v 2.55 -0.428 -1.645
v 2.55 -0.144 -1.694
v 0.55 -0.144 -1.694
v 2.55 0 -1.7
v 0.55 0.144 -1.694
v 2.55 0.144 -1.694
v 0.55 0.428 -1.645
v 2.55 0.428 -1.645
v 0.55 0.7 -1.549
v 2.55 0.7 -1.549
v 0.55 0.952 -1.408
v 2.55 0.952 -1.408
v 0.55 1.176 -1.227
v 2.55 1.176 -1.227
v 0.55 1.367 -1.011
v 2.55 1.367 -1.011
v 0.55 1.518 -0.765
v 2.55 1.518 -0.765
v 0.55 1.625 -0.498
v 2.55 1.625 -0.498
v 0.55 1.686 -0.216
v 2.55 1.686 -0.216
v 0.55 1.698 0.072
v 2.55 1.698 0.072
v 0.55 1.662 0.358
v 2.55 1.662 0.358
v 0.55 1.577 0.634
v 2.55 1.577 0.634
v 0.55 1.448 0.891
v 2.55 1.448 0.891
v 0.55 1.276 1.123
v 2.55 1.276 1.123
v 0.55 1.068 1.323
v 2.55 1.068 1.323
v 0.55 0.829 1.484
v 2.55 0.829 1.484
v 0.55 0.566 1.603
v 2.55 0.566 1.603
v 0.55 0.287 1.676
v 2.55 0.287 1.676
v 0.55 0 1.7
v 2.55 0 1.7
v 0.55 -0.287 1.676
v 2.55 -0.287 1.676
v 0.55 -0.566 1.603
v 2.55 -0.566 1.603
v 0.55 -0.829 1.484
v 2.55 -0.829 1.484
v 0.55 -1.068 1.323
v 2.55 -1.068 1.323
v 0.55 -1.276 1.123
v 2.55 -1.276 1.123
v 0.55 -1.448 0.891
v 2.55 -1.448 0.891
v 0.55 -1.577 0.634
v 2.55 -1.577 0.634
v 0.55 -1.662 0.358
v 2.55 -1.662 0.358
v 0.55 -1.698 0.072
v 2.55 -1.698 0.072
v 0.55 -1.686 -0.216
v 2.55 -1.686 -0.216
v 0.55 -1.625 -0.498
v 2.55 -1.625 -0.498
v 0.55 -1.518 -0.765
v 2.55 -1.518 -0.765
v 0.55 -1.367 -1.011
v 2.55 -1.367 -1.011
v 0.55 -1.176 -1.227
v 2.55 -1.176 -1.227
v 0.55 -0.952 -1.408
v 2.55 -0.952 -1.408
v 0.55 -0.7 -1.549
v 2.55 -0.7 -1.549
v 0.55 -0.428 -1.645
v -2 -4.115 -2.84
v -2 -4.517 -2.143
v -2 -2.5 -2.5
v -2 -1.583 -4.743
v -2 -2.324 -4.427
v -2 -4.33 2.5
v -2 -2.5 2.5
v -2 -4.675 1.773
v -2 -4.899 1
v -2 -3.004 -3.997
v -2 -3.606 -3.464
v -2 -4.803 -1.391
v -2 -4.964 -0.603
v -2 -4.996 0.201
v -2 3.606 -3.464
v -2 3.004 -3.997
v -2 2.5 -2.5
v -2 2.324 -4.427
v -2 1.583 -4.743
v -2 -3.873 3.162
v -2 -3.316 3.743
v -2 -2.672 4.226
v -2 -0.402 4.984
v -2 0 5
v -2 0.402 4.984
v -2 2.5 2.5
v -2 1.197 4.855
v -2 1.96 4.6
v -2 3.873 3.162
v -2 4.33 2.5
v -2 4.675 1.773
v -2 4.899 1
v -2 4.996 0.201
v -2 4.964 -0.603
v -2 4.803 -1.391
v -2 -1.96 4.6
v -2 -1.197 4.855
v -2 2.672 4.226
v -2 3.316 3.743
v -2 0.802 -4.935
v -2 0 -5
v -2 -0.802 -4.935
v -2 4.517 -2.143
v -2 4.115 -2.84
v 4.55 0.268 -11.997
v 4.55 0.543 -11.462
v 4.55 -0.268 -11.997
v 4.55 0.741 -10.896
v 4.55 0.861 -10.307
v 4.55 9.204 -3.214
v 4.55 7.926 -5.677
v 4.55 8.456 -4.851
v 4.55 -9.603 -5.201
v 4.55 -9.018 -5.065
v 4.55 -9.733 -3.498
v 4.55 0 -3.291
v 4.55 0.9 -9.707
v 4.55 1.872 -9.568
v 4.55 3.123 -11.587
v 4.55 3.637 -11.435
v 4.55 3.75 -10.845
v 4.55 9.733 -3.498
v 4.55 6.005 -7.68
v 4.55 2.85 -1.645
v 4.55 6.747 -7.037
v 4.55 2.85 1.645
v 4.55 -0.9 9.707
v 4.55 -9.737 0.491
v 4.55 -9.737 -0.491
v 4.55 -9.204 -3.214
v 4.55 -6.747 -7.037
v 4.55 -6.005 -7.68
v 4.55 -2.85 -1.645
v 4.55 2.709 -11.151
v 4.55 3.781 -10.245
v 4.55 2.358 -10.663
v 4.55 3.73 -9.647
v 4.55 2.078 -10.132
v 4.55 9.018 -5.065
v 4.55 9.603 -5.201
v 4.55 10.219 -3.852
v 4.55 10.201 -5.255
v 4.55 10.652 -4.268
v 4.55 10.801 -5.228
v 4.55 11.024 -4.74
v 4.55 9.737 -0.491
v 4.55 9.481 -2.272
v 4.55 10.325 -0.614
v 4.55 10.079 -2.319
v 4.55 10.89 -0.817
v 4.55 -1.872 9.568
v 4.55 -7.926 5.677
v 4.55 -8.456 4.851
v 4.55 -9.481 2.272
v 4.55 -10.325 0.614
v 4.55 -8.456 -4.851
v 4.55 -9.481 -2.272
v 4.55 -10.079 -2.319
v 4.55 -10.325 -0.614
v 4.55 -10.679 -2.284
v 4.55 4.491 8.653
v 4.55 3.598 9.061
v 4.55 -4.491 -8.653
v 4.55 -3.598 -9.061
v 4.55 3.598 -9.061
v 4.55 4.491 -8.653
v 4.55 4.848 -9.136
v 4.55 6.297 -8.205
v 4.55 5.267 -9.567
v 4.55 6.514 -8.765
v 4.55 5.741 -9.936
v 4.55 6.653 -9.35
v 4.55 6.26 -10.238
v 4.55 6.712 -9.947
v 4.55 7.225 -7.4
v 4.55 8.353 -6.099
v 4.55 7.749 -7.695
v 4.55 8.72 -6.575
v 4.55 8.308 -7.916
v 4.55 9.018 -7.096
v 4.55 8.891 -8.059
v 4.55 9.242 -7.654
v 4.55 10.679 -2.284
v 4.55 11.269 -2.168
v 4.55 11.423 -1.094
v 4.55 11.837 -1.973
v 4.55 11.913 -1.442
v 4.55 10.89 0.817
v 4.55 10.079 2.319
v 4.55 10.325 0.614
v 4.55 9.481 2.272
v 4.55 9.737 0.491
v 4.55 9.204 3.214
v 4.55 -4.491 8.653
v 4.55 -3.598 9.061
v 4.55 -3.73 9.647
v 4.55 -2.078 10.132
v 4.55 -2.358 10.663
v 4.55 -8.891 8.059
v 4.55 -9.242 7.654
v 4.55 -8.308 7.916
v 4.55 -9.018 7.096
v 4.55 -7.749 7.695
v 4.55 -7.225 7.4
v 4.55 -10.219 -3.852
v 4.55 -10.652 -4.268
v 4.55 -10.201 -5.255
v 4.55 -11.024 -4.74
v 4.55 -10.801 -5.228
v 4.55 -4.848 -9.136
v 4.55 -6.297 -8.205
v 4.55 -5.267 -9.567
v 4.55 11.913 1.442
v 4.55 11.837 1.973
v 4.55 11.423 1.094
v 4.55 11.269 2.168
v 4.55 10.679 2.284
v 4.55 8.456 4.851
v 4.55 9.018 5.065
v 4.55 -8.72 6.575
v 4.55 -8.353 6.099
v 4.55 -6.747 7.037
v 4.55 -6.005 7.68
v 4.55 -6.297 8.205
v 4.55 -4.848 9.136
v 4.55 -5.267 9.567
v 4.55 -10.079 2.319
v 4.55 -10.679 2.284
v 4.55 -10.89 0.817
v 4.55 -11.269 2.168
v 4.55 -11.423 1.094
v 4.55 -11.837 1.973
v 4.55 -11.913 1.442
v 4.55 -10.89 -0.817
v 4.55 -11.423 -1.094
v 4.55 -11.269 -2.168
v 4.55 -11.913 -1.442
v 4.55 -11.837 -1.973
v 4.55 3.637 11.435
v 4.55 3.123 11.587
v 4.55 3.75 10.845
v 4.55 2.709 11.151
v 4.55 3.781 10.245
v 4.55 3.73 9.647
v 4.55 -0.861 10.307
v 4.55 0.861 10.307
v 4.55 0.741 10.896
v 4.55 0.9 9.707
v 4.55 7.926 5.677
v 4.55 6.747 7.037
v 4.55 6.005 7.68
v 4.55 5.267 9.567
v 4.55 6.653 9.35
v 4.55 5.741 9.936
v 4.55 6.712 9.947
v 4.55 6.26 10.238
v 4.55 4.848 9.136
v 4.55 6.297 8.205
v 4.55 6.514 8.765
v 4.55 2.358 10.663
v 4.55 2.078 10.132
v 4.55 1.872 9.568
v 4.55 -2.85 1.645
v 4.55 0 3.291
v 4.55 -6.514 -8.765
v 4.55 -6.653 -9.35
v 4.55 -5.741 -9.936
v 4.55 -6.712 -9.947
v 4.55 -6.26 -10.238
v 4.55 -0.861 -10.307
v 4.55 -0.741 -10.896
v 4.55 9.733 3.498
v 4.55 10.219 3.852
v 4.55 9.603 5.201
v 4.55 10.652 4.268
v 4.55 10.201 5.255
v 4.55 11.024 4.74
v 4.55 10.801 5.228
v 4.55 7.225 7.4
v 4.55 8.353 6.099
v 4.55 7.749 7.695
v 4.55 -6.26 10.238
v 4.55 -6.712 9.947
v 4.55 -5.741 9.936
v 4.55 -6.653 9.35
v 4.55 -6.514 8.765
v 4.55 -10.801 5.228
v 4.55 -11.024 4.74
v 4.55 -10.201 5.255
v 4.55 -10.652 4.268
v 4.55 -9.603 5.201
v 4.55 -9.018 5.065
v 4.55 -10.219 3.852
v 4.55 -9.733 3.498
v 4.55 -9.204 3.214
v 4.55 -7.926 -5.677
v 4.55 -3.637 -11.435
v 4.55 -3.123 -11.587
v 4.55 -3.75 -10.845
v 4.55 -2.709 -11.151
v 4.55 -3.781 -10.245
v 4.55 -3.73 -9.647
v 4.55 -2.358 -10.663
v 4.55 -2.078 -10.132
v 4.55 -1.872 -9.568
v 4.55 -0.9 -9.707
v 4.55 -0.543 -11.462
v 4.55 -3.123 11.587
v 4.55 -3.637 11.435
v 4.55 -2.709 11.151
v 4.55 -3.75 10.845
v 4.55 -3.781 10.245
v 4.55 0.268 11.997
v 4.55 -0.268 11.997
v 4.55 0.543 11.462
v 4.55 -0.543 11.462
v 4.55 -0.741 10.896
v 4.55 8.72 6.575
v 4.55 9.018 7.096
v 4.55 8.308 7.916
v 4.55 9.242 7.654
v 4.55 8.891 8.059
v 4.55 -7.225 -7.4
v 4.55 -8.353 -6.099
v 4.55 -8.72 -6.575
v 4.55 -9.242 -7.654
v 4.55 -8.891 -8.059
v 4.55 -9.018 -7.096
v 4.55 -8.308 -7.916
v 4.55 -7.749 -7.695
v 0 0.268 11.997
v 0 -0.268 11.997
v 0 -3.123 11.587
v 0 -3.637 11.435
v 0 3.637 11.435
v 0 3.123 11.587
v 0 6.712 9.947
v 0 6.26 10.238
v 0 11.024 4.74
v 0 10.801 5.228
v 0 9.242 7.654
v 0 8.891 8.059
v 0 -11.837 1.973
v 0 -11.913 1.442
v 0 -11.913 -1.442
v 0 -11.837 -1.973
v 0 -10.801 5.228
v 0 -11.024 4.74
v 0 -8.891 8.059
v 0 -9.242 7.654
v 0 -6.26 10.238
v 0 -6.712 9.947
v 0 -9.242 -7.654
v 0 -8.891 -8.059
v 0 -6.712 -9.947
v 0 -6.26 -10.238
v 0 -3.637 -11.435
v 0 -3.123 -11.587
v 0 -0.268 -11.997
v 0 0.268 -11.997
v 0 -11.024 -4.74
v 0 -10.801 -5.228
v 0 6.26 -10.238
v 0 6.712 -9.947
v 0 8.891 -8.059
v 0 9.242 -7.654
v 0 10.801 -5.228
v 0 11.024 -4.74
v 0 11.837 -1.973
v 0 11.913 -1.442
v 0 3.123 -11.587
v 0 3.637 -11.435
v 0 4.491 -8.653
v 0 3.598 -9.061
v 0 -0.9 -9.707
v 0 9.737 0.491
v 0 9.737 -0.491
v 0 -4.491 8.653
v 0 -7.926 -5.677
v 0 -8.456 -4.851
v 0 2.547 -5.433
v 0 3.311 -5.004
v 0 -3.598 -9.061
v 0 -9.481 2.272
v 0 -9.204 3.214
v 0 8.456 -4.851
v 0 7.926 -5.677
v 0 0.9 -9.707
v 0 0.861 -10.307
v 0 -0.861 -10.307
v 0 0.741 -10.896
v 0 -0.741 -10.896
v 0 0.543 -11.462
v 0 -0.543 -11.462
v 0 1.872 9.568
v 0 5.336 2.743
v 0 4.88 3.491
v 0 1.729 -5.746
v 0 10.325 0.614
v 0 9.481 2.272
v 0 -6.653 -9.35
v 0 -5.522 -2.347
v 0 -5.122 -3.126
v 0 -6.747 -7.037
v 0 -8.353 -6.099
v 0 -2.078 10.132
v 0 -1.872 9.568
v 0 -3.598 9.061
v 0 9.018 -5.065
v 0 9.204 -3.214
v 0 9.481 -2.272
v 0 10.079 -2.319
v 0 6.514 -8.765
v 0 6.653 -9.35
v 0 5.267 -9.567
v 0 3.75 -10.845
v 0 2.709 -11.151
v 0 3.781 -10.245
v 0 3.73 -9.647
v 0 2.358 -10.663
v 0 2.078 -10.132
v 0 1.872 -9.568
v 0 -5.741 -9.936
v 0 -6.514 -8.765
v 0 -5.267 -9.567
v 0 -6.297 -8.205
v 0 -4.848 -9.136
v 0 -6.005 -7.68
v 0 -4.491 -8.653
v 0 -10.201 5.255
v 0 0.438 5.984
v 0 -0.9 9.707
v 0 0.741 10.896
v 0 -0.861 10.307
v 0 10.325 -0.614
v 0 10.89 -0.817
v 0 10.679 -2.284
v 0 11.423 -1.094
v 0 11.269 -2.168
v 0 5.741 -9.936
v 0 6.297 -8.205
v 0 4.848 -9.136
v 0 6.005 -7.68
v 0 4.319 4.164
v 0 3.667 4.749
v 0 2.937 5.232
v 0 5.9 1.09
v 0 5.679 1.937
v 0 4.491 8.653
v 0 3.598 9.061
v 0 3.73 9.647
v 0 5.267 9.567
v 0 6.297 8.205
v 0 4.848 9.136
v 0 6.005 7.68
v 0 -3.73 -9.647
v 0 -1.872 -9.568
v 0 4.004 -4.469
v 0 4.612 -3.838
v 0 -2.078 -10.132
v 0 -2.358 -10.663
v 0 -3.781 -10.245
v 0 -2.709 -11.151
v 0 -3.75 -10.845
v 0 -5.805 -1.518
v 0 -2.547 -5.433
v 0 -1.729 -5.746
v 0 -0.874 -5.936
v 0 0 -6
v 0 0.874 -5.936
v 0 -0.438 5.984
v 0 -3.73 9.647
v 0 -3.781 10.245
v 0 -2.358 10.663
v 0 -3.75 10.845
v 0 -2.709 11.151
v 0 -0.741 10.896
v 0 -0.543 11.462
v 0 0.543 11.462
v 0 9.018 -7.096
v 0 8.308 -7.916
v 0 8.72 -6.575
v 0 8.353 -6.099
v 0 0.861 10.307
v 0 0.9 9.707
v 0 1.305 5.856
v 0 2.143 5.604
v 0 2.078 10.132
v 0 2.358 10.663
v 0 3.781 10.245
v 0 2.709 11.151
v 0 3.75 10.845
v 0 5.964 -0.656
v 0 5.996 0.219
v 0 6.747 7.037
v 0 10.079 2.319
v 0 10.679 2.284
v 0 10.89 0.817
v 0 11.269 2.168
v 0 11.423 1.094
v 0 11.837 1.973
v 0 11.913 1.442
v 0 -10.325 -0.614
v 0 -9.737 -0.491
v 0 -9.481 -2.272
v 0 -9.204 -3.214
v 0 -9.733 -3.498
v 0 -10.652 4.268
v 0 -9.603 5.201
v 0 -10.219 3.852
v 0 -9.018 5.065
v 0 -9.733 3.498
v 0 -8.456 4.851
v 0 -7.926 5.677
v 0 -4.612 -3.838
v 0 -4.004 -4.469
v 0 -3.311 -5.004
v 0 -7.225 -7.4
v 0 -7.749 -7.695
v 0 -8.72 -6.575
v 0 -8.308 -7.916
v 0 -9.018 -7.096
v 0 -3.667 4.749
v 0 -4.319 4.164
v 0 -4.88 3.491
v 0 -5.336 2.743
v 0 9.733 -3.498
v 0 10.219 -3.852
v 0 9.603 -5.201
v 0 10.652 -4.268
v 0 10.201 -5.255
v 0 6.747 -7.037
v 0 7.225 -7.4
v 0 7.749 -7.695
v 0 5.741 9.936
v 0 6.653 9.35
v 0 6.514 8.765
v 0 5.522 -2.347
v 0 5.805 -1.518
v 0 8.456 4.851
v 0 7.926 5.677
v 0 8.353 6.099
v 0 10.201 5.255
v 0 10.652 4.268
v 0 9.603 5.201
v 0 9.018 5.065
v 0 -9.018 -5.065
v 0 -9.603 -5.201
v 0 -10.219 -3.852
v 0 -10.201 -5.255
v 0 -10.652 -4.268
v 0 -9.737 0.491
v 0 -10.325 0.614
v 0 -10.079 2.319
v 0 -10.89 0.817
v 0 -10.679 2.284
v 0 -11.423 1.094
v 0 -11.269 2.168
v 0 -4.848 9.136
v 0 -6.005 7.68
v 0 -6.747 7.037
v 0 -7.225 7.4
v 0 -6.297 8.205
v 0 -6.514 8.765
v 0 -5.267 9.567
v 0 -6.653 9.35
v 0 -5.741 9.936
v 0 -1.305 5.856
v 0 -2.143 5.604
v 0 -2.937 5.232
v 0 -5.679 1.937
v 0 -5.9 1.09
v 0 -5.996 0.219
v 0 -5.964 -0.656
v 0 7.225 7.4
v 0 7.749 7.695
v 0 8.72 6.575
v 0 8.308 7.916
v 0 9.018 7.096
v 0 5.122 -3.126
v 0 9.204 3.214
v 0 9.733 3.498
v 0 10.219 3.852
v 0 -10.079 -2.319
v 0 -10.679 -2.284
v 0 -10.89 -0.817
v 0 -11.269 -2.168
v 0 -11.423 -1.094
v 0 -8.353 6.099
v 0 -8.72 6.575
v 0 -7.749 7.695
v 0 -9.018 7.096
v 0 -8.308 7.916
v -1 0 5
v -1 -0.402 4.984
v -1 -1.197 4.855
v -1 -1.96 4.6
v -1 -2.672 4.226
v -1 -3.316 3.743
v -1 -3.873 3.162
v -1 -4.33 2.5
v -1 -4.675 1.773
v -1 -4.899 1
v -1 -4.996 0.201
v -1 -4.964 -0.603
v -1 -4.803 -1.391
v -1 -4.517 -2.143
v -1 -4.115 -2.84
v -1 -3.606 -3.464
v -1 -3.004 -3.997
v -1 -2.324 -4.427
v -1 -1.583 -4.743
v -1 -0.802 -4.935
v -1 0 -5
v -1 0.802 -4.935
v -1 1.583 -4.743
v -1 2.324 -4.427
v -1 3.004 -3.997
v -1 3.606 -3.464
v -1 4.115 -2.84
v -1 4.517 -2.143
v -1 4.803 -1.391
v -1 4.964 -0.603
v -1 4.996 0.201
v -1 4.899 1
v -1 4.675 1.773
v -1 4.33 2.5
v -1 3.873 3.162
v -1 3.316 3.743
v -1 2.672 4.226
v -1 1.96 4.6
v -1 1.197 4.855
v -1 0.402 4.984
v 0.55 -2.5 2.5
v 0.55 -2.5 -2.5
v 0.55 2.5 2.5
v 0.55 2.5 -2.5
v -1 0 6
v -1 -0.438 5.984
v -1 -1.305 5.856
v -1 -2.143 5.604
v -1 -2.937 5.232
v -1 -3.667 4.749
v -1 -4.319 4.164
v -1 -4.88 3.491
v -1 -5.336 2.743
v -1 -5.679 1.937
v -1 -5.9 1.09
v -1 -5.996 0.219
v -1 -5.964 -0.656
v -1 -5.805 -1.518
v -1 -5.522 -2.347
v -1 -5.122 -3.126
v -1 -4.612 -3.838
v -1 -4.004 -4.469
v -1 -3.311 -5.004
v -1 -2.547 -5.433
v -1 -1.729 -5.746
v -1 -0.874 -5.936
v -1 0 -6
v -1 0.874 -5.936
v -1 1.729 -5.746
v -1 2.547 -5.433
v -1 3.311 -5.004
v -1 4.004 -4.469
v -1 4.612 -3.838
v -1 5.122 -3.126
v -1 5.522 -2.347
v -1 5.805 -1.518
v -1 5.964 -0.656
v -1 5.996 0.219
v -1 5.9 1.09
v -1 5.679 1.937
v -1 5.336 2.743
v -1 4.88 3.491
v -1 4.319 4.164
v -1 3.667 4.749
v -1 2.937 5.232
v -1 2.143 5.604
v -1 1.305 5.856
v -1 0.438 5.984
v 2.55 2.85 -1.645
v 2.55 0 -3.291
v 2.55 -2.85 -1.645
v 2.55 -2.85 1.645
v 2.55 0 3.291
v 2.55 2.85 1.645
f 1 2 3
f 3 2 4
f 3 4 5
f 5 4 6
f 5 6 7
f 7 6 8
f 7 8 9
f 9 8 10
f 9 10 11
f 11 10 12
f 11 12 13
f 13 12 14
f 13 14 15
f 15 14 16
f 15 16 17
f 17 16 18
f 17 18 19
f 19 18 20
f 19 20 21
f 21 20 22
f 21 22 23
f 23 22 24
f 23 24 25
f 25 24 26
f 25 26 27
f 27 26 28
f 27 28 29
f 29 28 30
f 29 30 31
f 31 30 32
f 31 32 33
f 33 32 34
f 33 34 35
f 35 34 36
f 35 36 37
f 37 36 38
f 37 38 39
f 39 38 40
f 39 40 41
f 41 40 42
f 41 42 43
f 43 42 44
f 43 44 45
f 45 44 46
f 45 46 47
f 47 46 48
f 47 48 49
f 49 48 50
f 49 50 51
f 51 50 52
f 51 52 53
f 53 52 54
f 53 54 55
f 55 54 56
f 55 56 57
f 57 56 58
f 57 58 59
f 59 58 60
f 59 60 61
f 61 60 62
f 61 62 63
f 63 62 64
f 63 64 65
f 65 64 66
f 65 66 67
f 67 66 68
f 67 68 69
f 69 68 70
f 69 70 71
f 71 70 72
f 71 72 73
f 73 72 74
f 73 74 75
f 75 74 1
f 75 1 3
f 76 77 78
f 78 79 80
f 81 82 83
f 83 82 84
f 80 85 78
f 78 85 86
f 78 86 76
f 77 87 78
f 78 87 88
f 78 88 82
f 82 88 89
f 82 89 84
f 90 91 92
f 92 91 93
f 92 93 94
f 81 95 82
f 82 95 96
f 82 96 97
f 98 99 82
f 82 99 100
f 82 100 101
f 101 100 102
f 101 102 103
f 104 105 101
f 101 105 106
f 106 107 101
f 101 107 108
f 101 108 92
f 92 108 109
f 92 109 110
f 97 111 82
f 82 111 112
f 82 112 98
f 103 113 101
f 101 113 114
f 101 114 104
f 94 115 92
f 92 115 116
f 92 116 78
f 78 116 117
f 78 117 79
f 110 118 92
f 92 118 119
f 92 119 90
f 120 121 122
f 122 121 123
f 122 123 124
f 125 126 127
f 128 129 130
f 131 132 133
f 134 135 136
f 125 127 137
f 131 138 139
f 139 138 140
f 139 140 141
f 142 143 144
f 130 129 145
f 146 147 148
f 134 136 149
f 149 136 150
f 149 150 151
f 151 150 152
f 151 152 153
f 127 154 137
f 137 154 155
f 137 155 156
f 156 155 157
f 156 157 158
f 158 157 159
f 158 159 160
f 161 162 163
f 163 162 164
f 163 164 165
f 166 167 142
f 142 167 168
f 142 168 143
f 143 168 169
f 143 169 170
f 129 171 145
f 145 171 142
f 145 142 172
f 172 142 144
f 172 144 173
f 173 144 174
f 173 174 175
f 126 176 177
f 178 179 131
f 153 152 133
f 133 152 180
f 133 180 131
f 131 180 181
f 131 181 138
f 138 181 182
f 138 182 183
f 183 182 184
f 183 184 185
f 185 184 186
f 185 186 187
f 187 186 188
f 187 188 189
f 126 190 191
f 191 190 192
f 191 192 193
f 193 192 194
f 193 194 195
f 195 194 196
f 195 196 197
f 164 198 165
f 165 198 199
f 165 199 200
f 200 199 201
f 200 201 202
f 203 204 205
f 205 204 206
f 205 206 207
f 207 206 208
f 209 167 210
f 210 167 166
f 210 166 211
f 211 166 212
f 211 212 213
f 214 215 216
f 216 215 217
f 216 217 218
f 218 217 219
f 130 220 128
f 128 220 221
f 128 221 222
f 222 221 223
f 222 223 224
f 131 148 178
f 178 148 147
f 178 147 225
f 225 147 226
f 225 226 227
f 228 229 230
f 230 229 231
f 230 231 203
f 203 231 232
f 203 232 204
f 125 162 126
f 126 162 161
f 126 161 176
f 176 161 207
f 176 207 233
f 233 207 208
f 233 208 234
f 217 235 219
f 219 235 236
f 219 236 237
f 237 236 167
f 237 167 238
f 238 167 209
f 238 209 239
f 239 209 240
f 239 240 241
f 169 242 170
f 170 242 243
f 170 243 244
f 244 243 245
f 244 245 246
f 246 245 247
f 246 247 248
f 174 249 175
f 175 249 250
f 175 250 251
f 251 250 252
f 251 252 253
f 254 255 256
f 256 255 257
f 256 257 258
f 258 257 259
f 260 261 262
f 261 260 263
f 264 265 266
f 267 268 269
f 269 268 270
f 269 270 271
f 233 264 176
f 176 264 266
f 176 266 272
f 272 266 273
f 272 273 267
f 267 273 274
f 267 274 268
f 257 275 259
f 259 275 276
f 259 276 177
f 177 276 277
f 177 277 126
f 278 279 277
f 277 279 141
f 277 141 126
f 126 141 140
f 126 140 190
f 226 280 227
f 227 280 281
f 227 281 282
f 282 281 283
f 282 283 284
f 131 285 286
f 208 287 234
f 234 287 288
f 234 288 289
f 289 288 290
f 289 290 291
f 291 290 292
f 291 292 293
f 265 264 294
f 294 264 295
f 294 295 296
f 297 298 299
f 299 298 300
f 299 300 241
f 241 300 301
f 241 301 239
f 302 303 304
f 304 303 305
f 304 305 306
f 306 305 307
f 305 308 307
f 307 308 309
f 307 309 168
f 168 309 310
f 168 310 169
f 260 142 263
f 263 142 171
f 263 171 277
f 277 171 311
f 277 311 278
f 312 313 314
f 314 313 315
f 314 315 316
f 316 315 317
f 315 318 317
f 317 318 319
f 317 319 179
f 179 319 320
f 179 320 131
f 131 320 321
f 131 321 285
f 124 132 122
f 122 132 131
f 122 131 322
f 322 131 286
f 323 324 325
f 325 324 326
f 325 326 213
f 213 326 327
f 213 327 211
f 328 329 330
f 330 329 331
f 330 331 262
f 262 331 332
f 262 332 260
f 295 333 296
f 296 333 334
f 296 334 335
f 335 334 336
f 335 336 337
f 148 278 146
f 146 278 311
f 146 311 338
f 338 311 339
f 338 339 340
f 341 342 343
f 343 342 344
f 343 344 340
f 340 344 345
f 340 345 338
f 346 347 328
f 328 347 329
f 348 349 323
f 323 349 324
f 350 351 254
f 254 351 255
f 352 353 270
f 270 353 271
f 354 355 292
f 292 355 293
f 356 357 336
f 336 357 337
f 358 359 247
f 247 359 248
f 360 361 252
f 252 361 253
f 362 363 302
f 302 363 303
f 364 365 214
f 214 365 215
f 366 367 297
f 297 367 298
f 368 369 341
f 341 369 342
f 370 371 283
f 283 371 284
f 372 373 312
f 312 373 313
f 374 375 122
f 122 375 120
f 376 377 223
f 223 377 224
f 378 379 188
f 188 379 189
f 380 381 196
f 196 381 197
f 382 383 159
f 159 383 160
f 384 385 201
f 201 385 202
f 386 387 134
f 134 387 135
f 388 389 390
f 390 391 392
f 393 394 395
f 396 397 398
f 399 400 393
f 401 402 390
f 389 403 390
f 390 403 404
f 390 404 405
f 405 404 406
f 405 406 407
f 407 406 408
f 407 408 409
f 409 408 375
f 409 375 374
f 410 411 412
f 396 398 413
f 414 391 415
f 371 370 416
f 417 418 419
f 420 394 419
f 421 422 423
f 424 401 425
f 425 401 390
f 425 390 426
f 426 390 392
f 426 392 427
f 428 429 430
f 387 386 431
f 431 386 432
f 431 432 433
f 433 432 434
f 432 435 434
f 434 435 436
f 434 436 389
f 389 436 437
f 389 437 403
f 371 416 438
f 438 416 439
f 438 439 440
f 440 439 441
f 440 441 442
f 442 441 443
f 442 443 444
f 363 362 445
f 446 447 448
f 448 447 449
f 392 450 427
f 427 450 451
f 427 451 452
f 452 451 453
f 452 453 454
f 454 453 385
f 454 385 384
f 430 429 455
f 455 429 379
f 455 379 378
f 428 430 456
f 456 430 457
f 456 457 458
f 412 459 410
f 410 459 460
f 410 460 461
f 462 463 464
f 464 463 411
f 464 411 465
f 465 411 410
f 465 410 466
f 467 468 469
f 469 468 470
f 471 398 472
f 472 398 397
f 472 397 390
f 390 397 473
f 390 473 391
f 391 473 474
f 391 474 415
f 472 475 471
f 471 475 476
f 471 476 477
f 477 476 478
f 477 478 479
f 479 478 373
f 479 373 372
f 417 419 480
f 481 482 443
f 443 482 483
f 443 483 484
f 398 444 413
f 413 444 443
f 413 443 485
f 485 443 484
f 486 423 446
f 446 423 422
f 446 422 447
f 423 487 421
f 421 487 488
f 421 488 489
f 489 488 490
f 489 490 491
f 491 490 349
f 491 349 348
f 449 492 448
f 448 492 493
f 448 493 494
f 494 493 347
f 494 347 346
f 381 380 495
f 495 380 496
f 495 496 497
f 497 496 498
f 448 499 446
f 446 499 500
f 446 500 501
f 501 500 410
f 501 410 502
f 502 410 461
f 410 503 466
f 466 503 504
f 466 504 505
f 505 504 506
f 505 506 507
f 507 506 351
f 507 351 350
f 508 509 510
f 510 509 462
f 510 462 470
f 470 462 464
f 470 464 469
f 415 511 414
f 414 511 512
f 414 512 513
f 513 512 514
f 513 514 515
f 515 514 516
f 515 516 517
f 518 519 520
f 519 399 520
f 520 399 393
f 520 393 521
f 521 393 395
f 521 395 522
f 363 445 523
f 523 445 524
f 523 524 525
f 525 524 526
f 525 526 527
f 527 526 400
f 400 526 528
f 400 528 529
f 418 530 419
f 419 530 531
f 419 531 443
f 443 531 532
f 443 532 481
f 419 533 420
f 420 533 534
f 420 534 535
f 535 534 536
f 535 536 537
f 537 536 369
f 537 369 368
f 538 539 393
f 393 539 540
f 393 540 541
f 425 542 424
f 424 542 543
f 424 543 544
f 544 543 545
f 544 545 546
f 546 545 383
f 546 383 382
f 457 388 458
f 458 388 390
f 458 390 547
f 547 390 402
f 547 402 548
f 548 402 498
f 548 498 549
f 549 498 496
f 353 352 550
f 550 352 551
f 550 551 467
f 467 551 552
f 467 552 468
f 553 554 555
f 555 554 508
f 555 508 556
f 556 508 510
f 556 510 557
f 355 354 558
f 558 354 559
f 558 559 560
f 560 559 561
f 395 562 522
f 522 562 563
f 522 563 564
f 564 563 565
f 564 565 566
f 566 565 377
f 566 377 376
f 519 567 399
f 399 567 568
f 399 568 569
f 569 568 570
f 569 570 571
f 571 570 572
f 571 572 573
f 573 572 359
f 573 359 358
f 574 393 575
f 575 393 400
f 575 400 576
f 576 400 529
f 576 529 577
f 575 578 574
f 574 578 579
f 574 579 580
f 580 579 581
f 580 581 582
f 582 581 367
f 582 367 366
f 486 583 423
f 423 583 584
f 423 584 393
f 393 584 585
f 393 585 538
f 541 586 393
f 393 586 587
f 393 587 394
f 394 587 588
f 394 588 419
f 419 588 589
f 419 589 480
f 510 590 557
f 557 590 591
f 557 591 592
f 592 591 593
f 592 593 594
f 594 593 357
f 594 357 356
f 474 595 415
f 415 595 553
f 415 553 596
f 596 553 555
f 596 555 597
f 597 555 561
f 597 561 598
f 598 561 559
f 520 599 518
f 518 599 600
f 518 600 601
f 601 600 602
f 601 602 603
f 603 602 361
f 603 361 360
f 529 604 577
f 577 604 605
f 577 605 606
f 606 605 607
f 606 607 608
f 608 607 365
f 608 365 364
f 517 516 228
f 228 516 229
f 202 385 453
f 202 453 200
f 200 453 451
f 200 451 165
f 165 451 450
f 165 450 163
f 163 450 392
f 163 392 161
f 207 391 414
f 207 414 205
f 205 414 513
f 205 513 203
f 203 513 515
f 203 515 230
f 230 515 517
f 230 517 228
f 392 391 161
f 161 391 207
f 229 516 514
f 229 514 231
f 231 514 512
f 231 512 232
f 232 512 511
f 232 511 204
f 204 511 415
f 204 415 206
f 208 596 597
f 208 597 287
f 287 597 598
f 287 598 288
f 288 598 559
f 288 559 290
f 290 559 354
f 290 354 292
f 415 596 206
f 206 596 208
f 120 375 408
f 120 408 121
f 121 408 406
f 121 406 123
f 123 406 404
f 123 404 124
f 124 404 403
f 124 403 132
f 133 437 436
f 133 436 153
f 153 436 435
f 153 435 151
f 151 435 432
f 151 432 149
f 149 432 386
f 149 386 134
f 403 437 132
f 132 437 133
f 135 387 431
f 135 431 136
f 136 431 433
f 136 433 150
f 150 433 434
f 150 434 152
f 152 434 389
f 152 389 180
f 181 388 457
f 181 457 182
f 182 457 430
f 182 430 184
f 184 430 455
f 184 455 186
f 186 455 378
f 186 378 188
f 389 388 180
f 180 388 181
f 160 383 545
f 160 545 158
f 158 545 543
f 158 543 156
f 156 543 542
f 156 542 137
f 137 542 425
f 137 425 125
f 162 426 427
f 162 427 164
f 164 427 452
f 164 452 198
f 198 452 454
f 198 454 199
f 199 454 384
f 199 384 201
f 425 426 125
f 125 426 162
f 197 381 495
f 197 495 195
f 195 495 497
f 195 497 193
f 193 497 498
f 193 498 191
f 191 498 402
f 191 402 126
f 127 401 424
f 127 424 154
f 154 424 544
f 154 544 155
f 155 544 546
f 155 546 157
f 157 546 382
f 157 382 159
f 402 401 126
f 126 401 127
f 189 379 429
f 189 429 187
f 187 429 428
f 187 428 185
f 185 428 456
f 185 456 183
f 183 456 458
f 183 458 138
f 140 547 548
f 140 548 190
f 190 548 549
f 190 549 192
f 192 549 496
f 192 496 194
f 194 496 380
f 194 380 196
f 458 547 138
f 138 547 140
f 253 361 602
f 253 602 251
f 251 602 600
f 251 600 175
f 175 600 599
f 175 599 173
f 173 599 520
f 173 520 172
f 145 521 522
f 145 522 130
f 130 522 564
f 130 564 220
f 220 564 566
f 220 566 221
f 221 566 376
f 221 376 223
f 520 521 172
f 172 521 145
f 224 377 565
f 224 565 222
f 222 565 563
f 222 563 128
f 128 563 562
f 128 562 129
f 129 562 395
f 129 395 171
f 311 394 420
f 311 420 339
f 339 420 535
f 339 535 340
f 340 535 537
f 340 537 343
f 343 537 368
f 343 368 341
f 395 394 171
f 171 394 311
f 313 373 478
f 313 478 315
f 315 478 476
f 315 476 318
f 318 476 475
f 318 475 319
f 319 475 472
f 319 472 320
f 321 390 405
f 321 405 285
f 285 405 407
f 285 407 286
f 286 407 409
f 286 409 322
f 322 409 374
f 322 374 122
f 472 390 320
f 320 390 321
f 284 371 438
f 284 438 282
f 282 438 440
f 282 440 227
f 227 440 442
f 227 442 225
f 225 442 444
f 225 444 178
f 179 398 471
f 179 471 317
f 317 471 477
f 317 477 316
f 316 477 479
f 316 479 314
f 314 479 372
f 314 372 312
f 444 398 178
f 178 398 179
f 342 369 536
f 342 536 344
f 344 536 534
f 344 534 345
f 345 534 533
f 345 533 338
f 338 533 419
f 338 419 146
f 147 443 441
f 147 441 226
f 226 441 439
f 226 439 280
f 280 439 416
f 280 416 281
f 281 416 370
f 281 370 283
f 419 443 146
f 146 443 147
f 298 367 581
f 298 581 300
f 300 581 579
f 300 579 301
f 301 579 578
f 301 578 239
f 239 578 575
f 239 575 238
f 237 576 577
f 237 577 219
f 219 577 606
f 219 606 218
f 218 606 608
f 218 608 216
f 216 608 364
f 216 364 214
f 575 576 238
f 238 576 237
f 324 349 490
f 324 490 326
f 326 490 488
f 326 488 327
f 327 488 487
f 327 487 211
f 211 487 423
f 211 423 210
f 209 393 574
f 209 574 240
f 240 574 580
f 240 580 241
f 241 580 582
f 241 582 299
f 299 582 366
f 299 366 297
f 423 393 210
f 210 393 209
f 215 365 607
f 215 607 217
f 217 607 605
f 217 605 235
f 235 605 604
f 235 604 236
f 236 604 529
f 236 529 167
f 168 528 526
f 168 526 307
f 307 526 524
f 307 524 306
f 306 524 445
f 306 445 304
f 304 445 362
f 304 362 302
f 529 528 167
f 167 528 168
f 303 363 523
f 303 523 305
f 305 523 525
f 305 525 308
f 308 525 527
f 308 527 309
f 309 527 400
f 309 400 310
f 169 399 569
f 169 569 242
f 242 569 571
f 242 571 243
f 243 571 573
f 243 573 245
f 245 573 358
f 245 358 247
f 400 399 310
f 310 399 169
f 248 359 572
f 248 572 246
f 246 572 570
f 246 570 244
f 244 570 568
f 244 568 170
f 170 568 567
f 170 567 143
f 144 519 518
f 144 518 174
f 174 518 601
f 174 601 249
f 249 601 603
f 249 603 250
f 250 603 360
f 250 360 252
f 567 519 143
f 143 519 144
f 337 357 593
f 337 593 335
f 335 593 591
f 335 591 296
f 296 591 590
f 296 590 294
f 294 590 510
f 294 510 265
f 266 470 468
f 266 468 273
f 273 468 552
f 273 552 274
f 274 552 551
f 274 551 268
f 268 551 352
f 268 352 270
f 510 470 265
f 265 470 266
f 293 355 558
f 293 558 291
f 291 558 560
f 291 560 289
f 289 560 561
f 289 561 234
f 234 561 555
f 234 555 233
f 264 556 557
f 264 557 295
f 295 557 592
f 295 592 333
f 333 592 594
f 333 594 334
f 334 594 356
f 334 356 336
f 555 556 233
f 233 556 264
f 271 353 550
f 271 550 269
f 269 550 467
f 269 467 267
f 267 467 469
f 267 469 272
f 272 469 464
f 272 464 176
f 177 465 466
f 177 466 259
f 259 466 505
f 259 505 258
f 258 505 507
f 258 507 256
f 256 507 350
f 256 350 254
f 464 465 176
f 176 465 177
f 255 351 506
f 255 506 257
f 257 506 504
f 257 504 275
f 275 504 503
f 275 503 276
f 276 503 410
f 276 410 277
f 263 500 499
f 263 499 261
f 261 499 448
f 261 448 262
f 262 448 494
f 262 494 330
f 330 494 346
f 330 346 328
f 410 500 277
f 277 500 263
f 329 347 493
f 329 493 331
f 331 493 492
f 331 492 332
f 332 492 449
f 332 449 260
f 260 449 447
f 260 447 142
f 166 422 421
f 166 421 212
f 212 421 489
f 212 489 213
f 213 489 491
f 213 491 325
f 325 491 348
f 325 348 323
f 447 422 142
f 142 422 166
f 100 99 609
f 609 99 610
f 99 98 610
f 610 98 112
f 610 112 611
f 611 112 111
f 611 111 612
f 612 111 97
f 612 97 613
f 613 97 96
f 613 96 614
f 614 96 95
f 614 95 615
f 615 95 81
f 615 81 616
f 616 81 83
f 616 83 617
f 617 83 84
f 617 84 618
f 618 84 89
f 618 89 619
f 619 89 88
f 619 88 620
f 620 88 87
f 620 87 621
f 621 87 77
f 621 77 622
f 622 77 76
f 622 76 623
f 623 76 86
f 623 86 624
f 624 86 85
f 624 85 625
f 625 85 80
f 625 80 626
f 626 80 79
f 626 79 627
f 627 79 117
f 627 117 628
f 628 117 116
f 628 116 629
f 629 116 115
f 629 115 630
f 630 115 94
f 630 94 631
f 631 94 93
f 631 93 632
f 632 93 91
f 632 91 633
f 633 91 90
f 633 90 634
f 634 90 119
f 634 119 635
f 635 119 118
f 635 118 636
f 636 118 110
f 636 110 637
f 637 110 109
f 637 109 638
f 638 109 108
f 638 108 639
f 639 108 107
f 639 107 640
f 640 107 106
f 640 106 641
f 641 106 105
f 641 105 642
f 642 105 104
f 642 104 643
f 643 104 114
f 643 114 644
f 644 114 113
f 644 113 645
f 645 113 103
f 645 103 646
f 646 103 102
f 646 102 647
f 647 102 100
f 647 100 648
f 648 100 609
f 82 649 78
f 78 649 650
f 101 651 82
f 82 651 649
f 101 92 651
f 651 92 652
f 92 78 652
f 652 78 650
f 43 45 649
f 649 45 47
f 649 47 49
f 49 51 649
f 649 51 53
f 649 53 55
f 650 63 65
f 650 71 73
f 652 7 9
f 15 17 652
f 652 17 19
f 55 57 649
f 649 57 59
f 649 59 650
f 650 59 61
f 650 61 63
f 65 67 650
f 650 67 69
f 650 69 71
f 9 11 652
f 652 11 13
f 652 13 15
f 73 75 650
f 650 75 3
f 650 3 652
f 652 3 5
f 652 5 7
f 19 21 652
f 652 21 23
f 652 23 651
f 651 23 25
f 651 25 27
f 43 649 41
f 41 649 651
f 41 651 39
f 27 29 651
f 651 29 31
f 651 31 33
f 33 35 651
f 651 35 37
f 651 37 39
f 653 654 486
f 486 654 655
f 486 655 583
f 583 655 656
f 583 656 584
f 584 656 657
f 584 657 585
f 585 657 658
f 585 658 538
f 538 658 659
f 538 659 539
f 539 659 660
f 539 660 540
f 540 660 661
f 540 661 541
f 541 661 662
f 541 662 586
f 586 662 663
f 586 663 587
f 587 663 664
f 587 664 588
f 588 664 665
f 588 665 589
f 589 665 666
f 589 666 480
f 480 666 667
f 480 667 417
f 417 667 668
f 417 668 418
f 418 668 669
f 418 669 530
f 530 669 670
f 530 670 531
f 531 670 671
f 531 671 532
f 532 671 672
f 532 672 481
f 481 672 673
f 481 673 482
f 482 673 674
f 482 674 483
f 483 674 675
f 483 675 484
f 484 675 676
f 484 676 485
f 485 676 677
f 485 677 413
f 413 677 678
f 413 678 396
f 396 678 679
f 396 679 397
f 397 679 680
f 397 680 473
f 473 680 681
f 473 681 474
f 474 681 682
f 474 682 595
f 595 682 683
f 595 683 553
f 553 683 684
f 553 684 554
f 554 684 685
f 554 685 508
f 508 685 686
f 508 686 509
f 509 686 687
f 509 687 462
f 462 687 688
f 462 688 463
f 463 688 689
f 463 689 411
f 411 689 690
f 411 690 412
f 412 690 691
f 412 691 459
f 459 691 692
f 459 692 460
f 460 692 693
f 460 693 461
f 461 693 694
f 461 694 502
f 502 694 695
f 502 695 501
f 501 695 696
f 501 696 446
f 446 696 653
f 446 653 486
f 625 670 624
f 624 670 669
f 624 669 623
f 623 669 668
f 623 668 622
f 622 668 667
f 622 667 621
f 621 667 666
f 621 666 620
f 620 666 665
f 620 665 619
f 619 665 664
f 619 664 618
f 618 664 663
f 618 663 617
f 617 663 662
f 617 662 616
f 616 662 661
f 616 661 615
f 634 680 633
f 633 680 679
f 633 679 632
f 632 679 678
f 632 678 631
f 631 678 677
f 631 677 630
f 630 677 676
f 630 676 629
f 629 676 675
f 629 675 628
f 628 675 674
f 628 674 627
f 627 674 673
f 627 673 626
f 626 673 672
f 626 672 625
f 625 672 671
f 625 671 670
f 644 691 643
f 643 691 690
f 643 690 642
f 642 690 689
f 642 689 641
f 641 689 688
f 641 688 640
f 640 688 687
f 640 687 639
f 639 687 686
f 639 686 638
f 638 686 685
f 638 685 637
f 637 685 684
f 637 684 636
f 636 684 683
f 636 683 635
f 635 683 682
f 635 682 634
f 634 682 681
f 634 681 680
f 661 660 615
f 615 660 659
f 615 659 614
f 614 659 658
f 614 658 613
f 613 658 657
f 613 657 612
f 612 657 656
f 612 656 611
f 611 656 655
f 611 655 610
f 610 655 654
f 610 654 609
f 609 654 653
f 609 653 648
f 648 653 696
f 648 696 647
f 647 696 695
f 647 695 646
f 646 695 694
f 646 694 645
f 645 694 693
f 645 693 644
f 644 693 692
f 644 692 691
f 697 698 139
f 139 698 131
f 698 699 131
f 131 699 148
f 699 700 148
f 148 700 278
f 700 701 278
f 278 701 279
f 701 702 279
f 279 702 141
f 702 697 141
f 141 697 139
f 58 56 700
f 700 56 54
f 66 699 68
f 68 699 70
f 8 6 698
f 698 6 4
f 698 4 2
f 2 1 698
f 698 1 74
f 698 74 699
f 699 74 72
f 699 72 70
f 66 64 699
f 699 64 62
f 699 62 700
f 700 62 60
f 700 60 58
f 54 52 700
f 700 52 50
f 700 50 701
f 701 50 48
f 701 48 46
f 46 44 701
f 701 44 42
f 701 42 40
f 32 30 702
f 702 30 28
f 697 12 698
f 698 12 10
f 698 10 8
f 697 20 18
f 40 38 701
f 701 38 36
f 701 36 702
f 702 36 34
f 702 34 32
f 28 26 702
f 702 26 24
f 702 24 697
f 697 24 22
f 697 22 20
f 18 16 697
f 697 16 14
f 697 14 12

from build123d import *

# Parameters (mm, degrees)
BASPROSKE_W         = 4.55
BASPROSKE_H         = 12
TOOTHCUT_DEPTH      = 18.569931702
TEETHCUTS_COUNT     = 22
TEETHCUTS_ANGLE     = 343.636363636
BORSKE_R            = 1.7
BORE_DEPTH          = 50.0000508
SKETCH1_R           = 5
BOSS_EXTRUDE1_DEPTH = 2
CUT_EXTRUDE1_START  = 2
SKETCH1_2_W         = 5
SKETCH1_2_H         = 5
CUT_EXTRUDE1_DEPTH  = 2.55
SKETCH1_4_R         = 6
SKETCH1_4_R_2       = 5
BOSS_EXTRUDE2_DEPTH = 1
CUT_EXTRUDE2_DEPTH  = 2


with BuildPart() as part:
    # BasProSke → Base-Revolve (revolve)
    with BuildSketch(Plane(origin=(0, 0, 0), x_dir=(1, 0, 0), z_dir=(0, 1, 0)), mode=Mode.PRIVATE) as base_revolve_sk:
        with Locations((2.275, 6)):
            Rectangle(BASPROSKE_W, BASPROSKE_H)
    revolve(base_revolve_sk.sketch.rotate(Axis((-10, 0, 0), (1, 0, 0)), 180), axis=Axis((-10, 0, 0), (1, 0, 0)))

    # TooCutSke → ToothCut (cut, through all)
    with BuildSketch(Plane(origin=(0, 0, 0), x_dir=(0, 0, -1), z_dir=(1, 0, 0))):
        with BuildLine():
            ThreePointArc((0.491001901, 9.736627657), (0, 9.749), (-0.491001901, 9.736627657))
            ThreePointArc((-0.491001901, 9.736627657), (-0.822824844, 10.904005344), (-1.46093845, 11.936327074))
            ThreePointArc((-1.46093845, 11.936327074), (0, 12.0254), (1.46093845, 11.936327074))
            ThreePointArc((1.46093845, 11.936327074), (0.822824844, 10.904005344), (0.491001901, 9.736627657))
        make_face()
    toothcut = extrude(amount=TOOTHCUT_DEPTH, mode=Mode.SUBTRACT)

    # TeethCuts: ToothCut ×22 about axis
    teethcuts_axis = Axis((-10, 0, 0), (1, 0, 0))
    for i in range(1, TEETHCUTS_COUNT):
        add(toothcut.rotate(teethcuts_axis, i * TEETHCUTS_ANGLE / (TEETHCUTS_COUNT - 1)), mode=Mode.SUBTRACT)

    # BorSke → Bore (cut, symmetric)
    with BuildSketch(Plane(origin=(0, 0, 0), x_dir=(0, 0, -1), z_dir=(1, 0, 0))):
        with Locations(Location((0, 0, 0), (0, 0, 180))):
            Circle(BORSKE_R)
    extrude(amount=BORE_DEPTH, both=True, mode=Mode.SUBTRACT)

    # Sketch1 → Boss-Extrude1 (add)
    with BuildSketch(Plane.ZY):
        with Locations(Location((0, 0, 0), (0, 0, 180))):
            Circle(SKETCH1_R)
    extrude(amount=BOSS_EXTRUDE1_DEPTH)

    # Sketch1<2> → Cut-Extrude1 (cut)
    with BuildSketch(Plane.ZY.offset(CUT_EXTRUDE1_START)):
        Rectangle(SKETCH1_2_W, SKETCH1_2_H)
    extrude(amount=-CUT_EXTRUDE1_DEPTH, mode=Mode.SUBTRACT)

    # Sketch1<4> → Boss-Extrude2 (add)
    with BuildSketch(Plane.ZY):
        with Locations(Location((0, 0, 0), (0, 0, 180))):
            Circle(SKETCH1_4_R)
        Circle(SKETCH1_4_R_2, mode=Mode.SUBTRACT)
    extrude(amount=BOSS_EXTRUDE2_DEPTH)

    # Sketch2 → Cut-Extrude2 (cut)
    with BuildSketch(Plane(origin=(4.55, 0, 0), x_dir=(0, 0, -1), z_dir=(1, 0, 0))):
        Polygon((1.645448267, 2.85), (-1.645448267, 2.85), (-3.290896534, 0), (-1.645448267, -2.85), (1.645448267, -2.85), (3.290896534, 0), align=None)
    extrude(amount=-CUT_EXTRUDE2_DEPTH, mode=Mode.SUBTRACT)


solid = part.part
